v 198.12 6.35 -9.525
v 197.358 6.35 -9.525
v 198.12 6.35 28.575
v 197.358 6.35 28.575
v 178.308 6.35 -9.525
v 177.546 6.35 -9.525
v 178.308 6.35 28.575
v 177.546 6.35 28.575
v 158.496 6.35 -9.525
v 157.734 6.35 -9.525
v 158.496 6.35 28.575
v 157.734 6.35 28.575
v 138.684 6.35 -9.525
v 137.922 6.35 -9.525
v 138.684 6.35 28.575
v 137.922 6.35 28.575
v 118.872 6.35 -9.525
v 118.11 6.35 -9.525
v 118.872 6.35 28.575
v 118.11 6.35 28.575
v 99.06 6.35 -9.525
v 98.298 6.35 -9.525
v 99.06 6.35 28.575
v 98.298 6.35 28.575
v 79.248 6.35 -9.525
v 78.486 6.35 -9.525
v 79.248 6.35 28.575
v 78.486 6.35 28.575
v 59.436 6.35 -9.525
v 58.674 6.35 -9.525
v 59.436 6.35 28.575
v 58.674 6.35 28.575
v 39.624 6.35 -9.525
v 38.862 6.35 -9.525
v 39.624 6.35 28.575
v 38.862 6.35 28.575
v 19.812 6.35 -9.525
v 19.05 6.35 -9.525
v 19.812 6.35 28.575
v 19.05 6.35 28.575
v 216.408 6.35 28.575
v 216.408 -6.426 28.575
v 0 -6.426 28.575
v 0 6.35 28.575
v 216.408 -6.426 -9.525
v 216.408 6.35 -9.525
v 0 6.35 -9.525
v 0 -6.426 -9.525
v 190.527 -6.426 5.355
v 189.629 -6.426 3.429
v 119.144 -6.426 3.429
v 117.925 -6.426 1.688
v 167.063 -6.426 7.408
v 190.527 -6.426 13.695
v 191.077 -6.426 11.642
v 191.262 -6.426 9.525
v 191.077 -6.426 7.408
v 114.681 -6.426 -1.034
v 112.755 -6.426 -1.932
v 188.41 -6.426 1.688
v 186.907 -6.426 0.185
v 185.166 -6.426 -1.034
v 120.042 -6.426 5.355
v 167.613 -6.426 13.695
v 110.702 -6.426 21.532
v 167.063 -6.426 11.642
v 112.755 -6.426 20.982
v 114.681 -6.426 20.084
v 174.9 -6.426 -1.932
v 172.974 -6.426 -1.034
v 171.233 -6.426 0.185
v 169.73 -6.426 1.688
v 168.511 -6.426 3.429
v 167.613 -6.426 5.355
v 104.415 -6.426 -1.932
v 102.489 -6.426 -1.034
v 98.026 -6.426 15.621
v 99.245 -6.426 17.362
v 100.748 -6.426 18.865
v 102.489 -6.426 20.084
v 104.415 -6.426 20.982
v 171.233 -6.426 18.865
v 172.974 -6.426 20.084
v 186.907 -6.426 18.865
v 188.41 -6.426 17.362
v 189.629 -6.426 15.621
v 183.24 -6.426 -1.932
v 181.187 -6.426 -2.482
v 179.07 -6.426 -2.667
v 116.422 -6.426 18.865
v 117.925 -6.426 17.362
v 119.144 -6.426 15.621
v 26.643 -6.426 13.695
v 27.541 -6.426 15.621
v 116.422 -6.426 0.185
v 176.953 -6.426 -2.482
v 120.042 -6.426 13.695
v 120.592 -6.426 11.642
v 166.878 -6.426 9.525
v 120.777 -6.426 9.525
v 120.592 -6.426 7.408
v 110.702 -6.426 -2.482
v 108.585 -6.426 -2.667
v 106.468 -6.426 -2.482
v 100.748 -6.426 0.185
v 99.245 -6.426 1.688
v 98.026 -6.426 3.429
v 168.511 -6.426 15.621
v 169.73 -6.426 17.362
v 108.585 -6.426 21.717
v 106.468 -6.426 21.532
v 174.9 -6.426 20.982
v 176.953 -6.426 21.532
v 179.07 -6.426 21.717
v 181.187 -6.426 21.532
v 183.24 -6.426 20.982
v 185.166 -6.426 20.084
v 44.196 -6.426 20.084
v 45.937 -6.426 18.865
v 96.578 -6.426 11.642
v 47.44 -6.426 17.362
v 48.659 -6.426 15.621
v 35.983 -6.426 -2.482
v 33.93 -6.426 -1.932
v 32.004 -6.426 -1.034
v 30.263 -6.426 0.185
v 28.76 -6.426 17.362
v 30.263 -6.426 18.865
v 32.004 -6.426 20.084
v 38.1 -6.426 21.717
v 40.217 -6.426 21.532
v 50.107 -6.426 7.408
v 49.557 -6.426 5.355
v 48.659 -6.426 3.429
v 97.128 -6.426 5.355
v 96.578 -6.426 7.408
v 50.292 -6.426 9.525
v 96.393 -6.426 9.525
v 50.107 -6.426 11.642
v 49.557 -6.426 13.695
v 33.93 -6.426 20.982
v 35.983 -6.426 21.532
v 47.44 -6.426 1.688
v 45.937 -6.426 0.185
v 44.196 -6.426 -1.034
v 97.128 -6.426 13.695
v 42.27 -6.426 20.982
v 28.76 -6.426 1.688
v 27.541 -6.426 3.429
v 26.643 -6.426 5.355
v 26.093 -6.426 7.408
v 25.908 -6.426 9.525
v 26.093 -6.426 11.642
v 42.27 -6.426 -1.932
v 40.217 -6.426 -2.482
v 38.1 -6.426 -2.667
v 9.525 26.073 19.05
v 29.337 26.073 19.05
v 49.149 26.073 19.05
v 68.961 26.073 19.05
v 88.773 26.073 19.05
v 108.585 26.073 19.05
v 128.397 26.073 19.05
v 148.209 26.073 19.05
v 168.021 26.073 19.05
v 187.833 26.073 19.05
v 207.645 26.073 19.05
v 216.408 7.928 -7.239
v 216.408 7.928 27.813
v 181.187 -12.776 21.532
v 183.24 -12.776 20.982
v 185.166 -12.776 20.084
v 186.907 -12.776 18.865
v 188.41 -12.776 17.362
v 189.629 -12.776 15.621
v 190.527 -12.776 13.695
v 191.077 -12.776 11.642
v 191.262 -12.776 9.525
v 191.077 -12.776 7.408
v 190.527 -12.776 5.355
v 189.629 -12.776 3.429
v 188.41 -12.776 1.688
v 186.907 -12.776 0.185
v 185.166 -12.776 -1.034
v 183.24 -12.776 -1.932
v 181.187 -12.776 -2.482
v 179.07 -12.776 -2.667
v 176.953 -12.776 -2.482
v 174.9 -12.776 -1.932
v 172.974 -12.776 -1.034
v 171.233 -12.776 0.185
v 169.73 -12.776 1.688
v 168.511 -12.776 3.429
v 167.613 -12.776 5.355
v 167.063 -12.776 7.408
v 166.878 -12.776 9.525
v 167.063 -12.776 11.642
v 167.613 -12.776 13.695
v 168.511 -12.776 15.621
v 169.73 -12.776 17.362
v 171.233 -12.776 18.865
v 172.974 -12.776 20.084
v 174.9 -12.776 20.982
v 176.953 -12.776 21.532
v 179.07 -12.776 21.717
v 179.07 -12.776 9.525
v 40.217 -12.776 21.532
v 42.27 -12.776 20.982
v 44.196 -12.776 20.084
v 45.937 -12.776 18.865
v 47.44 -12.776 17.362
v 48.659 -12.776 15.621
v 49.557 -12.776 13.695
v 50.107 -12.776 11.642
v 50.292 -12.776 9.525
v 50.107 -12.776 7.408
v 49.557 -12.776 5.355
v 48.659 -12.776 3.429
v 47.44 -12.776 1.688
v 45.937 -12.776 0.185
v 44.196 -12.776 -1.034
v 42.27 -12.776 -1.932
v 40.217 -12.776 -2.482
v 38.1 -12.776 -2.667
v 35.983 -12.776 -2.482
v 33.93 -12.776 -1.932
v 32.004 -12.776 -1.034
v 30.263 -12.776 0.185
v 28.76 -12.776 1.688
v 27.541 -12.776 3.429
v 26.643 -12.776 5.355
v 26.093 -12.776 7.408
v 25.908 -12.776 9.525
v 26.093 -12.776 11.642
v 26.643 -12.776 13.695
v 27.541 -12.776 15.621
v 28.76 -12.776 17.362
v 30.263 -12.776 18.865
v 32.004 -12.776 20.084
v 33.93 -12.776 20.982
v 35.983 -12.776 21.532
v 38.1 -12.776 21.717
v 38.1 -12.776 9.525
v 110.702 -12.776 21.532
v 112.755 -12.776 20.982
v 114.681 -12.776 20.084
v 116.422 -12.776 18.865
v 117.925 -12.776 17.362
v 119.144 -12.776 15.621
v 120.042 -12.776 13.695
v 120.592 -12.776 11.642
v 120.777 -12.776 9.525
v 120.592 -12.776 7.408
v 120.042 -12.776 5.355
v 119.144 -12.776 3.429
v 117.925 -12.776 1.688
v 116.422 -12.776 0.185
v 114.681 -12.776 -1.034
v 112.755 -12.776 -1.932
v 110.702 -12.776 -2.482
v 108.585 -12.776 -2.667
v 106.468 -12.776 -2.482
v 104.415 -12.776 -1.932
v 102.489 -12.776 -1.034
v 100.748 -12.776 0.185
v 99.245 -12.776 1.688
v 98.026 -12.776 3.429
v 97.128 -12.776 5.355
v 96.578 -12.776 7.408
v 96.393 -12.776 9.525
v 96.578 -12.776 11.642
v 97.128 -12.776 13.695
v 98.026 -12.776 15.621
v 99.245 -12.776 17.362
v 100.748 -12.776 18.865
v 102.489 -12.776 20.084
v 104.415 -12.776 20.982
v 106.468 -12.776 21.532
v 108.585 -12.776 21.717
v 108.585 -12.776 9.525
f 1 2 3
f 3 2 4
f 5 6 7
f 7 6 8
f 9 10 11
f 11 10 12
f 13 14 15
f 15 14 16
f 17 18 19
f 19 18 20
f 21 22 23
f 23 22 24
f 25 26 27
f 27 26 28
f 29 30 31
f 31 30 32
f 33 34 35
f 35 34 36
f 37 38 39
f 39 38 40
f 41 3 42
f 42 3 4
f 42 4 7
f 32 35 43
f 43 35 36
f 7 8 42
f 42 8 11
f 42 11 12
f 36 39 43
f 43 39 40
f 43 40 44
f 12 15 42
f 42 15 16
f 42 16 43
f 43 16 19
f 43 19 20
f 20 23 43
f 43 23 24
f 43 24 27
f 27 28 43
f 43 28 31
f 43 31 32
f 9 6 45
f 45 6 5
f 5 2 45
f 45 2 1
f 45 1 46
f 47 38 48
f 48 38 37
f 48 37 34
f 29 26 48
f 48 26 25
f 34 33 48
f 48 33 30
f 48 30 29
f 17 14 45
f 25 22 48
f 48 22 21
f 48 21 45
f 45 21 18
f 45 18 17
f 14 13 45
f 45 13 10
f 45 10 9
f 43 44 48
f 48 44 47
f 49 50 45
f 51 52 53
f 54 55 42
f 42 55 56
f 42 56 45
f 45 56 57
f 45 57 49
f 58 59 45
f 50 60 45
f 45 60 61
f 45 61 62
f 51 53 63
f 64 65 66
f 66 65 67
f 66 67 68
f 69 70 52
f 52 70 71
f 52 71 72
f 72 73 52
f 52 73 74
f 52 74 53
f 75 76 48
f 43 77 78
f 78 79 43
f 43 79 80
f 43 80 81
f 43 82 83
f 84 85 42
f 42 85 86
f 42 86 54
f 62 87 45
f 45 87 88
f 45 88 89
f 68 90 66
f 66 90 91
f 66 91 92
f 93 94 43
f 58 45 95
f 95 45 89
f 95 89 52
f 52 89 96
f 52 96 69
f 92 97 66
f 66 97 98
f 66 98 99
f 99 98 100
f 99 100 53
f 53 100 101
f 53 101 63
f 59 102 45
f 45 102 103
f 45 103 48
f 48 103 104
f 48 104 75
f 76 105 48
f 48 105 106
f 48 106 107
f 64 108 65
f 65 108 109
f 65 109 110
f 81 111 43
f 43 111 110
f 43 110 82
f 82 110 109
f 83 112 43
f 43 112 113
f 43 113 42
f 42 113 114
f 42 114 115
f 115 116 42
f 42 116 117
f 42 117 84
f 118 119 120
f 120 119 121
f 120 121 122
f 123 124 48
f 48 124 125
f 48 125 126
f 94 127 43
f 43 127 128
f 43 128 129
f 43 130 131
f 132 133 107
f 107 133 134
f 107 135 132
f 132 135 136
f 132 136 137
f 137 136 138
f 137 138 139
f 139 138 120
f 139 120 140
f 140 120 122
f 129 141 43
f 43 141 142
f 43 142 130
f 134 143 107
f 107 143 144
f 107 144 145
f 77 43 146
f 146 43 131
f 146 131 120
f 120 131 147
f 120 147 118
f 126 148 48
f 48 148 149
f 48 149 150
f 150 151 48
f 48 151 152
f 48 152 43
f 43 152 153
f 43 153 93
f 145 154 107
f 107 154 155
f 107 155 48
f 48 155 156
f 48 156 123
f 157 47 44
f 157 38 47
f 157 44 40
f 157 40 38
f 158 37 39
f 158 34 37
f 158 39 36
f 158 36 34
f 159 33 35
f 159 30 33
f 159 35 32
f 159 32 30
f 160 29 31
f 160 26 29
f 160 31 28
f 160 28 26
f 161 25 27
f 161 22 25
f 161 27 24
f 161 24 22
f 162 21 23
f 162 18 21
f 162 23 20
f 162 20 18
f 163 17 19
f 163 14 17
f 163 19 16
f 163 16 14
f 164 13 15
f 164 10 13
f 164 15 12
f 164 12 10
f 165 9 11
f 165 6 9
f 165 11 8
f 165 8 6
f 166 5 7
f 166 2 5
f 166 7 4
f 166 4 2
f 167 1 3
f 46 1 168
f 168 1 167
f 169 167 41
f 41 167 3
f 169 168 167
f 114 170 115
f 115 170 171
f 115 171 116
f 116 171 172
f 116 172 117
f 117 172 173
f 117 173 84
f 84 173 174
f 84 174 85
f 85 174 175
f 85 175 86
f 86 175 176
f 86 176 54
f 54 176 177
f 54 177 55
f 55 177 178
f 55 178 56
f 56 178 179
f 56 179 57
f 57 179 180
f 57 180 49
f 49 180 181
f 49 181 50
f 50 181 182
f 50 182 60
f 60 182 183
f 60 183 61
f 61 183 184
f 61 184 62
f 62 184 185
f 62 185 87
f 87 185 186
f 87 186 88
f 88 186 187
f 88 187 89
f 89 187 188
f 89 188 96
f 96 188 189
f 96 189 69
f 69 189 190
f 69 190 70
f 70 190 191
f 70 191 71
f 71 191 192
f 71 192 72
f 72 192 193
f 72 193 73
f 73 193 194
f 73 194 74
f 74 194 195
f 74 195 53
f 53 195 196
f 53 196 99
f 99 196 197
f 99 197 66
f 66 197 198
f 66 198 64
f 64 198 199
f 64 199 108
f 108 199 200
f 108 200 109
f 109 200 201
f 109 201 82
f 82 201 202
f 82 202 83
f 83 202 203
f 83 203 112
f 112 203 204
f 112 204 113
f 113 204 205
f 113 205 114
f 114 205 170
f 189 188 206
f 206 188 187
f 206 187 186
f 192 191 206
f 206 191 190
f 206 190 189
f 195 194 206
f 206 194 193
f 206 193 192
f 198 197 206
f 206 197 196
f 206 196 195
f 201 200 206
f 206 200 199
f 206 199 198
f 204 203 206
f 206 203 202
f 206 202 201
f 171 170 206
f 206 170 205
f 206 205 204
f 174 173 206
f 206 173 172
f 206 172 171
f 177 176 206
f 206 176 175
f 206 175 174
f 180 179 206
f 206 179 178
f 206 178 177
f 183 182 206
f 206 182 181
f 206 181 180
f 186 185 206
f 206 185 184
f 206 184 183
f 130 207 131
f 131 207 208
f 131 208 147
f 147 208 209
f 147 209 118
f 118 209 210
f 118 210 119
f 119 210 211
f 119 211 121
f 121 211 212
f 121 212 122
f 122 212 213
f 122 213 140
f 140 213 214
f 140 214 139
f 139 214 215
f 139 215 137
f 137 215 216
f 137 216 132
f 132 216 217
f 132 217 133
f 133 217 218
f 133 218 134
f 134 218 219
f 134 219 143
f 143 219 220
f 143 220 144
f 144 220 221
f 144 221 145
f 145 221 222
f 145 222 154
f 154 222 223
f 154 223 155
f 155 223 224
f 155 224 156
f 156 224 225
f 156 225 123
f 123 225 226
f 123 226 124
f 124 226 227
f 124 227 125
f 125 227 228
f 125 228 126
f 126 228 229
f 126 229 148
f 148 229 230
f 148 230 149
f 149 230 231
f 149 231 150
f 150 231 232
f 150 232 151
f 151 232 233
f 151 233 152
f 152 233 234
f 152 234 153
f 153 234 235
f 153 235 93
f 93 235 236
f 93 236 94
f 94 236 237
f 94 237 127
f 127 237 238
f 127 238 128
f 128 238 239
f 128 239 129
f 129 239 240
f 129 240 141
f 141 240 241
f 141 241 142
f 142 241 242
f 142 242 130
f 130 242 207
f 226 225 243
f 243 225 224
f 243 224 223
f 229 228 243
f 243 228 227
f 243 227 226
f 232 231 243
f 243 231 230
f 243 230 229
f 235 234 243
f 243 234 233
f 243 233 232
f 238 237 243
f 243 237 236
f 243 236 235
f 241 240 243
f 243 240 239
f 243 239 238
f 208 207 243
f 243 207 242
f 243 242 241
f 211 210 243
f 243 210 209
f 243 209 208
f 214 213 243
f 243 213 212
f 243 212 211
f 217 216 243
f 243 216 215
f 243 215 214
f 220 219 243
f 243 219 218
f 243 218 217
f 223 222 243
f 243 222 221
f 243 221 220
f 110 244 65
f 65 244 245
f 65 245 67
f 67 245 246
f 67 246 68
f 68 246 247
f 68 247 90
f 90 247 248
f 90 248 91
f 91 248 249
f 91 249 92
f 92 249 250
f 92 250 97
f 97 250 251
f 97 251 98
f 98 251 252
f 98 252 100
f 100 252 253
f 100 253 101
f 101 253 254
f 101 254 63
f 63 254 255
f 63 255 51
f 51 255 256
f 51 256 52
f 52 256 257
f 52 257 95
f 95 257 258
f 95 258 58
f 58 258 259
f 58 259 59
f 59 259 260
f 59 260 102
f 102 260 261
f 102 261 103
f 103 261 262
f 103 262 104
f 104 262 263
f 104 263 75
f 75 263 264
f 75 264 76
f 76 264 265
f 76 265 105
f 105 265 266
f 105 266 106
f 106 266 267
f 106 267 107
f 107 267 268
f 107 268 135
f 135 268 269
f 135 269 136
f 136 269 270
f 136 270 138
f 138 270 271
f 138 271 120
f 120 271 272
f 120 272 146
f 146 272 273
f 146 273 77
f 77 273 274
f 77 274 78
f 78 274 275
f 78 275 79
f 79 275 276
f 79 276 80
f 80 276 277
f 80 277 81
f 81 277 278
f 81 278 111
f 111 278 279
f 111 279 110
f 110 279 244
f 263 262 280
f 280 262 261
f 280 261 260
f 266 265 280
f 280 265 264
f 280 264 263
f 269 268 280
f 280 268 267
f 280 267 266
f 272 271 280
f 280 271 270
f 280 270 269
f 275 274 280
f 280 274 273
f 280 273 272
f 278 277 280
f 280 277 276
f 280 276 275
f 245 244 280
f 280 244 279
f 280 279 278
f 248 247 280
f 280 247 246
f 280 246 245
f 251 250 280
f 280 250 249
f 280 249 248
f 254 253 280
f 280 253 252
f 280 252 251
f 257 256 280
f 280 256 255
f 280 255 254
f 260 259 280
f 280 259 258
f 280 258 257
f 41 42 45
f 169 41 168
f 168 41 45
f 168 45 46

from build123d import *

# Parameters (mm, degrees)
SKETCH1_W           = 19.05
SKETCH1_H           = 19.05
BOSS_EXTRUDE2_DEPTH = 6.35
SKETCH8_W           = 217.17
SKETCH8_H           = 38.1
BOSS_EXTRUDE4_DEPTH = 6.35
SKETCH8_5_W         = 217.17
SKETCH8_5_H         = 38.1
BOSS_EXTRUDE5_DEPTH = 6.4262
LPATTERN3_COUNT     = 11
LPATTERN3_PITCH     = 19.812
SKETCH15_R          = 12.192
BOSS_EXTRUDE6_DEPTH = 6.35
SKETCH16_W          = 38.1
SKETCH16_H          = 22.073264639
CUT_EXTRUDE1_DEPTH  = 3.302


with BuildPart() as part:
    # Sketch1 → Boss-Extrude2 (new body)
    with BuildSketch(Plane(origin=(0, 0, 0), x_dir=(1, 0, 0), z_dir=(0, 1, 0))):
        with Locations((9.525, -9.525)):
            Rectangle(SKETCH1_W, SKETCH1_H)
    extrude(amount=BOSS_EXTRUDE2_DEPTH)

    # Sketch8 → Boss-Extrude4 (add)
    with BuildSketch(Plane(origin=(0, 0, 0), x_dir=(1, 0, 0), z_dir=(0, 1, 0))):
        with Locations((108.585, -9.525)):
            Rectangle(SKETCH8_W, SKETCH8_H)
    extrude(amount=BOSS_EXTRUDE4_DEPTH)

    # Sketch8<5> → Boss-Extrude5 (add)
    with BuildSketch(Plane(origin=(0, 0, 0), x_dir=(1, 0, 0), z_dir=(0, 1, 0))):
        with Locations((108.585, -9.525)):
            Rectangle(SKETCH8_5_W, SKETCH8_5_H)
    extrude(amount=-BOSS_EXTRUDE5_DEPTH)

    # Sketch9 → Loft3 section 0
    with BuildSketch(Plane(origin=(0, 6.35, 0), x_dir=(1, 0, 0), z_dir=(0, 1, 0)), mode=Mode.PRIVATE) as loft3_s0:
        with BuildLine():
            Line((0, 9.525), (19.05, 9.525))
            Line((19.05, 9.525), (19.05, -28.575))
            Line((19.05, -28.575), (0, -28.575))
            Line((0, -28.575), (0, 9.525))
        make_face()
    loft3 = loft([loft3_s0.sketch, Vertex(9.525, 26.0731, 19.05)])

    # LPattern3: Loft3 ×11
    with Locations(*[(i * LPATTERN3_PITCH, 0, 0) for i in range(1, LPATTERN3_COUNT)]):
        add(loft3)

    # Sketch15 → Boss-Extrude6 (add)
    with BuildSketch(Plane.XZ.offset(6.4262)):
        with Locations((179.07, 9.525)):
            Circle(SKETCH15_R)
        with Locations((38.1, 9.525)):
            Circle(SKETCH15_R)
        with Locations((108.585, 9.525)):
            Circle(SKETCH15_R)
    extrude(amount=BOSS_EXTRUDE6_DEPTH)

    # Sketch16 → Cut-Extrude1 (cut)
    with BuildSketch(Plane(origin=(219.71, 0, 0), x_dir=(0, 0, -1), z_dir=(1, 0, 0))):
        with Locations((-9.525, 4.61043232)):
            Rectangle(SKETCH16_W, SKETCH16_H)
    extrude(amount=-CUT_EXTRUDE1_DEPTH, mode=Mode.SUBTRACT)


solid = part.part
